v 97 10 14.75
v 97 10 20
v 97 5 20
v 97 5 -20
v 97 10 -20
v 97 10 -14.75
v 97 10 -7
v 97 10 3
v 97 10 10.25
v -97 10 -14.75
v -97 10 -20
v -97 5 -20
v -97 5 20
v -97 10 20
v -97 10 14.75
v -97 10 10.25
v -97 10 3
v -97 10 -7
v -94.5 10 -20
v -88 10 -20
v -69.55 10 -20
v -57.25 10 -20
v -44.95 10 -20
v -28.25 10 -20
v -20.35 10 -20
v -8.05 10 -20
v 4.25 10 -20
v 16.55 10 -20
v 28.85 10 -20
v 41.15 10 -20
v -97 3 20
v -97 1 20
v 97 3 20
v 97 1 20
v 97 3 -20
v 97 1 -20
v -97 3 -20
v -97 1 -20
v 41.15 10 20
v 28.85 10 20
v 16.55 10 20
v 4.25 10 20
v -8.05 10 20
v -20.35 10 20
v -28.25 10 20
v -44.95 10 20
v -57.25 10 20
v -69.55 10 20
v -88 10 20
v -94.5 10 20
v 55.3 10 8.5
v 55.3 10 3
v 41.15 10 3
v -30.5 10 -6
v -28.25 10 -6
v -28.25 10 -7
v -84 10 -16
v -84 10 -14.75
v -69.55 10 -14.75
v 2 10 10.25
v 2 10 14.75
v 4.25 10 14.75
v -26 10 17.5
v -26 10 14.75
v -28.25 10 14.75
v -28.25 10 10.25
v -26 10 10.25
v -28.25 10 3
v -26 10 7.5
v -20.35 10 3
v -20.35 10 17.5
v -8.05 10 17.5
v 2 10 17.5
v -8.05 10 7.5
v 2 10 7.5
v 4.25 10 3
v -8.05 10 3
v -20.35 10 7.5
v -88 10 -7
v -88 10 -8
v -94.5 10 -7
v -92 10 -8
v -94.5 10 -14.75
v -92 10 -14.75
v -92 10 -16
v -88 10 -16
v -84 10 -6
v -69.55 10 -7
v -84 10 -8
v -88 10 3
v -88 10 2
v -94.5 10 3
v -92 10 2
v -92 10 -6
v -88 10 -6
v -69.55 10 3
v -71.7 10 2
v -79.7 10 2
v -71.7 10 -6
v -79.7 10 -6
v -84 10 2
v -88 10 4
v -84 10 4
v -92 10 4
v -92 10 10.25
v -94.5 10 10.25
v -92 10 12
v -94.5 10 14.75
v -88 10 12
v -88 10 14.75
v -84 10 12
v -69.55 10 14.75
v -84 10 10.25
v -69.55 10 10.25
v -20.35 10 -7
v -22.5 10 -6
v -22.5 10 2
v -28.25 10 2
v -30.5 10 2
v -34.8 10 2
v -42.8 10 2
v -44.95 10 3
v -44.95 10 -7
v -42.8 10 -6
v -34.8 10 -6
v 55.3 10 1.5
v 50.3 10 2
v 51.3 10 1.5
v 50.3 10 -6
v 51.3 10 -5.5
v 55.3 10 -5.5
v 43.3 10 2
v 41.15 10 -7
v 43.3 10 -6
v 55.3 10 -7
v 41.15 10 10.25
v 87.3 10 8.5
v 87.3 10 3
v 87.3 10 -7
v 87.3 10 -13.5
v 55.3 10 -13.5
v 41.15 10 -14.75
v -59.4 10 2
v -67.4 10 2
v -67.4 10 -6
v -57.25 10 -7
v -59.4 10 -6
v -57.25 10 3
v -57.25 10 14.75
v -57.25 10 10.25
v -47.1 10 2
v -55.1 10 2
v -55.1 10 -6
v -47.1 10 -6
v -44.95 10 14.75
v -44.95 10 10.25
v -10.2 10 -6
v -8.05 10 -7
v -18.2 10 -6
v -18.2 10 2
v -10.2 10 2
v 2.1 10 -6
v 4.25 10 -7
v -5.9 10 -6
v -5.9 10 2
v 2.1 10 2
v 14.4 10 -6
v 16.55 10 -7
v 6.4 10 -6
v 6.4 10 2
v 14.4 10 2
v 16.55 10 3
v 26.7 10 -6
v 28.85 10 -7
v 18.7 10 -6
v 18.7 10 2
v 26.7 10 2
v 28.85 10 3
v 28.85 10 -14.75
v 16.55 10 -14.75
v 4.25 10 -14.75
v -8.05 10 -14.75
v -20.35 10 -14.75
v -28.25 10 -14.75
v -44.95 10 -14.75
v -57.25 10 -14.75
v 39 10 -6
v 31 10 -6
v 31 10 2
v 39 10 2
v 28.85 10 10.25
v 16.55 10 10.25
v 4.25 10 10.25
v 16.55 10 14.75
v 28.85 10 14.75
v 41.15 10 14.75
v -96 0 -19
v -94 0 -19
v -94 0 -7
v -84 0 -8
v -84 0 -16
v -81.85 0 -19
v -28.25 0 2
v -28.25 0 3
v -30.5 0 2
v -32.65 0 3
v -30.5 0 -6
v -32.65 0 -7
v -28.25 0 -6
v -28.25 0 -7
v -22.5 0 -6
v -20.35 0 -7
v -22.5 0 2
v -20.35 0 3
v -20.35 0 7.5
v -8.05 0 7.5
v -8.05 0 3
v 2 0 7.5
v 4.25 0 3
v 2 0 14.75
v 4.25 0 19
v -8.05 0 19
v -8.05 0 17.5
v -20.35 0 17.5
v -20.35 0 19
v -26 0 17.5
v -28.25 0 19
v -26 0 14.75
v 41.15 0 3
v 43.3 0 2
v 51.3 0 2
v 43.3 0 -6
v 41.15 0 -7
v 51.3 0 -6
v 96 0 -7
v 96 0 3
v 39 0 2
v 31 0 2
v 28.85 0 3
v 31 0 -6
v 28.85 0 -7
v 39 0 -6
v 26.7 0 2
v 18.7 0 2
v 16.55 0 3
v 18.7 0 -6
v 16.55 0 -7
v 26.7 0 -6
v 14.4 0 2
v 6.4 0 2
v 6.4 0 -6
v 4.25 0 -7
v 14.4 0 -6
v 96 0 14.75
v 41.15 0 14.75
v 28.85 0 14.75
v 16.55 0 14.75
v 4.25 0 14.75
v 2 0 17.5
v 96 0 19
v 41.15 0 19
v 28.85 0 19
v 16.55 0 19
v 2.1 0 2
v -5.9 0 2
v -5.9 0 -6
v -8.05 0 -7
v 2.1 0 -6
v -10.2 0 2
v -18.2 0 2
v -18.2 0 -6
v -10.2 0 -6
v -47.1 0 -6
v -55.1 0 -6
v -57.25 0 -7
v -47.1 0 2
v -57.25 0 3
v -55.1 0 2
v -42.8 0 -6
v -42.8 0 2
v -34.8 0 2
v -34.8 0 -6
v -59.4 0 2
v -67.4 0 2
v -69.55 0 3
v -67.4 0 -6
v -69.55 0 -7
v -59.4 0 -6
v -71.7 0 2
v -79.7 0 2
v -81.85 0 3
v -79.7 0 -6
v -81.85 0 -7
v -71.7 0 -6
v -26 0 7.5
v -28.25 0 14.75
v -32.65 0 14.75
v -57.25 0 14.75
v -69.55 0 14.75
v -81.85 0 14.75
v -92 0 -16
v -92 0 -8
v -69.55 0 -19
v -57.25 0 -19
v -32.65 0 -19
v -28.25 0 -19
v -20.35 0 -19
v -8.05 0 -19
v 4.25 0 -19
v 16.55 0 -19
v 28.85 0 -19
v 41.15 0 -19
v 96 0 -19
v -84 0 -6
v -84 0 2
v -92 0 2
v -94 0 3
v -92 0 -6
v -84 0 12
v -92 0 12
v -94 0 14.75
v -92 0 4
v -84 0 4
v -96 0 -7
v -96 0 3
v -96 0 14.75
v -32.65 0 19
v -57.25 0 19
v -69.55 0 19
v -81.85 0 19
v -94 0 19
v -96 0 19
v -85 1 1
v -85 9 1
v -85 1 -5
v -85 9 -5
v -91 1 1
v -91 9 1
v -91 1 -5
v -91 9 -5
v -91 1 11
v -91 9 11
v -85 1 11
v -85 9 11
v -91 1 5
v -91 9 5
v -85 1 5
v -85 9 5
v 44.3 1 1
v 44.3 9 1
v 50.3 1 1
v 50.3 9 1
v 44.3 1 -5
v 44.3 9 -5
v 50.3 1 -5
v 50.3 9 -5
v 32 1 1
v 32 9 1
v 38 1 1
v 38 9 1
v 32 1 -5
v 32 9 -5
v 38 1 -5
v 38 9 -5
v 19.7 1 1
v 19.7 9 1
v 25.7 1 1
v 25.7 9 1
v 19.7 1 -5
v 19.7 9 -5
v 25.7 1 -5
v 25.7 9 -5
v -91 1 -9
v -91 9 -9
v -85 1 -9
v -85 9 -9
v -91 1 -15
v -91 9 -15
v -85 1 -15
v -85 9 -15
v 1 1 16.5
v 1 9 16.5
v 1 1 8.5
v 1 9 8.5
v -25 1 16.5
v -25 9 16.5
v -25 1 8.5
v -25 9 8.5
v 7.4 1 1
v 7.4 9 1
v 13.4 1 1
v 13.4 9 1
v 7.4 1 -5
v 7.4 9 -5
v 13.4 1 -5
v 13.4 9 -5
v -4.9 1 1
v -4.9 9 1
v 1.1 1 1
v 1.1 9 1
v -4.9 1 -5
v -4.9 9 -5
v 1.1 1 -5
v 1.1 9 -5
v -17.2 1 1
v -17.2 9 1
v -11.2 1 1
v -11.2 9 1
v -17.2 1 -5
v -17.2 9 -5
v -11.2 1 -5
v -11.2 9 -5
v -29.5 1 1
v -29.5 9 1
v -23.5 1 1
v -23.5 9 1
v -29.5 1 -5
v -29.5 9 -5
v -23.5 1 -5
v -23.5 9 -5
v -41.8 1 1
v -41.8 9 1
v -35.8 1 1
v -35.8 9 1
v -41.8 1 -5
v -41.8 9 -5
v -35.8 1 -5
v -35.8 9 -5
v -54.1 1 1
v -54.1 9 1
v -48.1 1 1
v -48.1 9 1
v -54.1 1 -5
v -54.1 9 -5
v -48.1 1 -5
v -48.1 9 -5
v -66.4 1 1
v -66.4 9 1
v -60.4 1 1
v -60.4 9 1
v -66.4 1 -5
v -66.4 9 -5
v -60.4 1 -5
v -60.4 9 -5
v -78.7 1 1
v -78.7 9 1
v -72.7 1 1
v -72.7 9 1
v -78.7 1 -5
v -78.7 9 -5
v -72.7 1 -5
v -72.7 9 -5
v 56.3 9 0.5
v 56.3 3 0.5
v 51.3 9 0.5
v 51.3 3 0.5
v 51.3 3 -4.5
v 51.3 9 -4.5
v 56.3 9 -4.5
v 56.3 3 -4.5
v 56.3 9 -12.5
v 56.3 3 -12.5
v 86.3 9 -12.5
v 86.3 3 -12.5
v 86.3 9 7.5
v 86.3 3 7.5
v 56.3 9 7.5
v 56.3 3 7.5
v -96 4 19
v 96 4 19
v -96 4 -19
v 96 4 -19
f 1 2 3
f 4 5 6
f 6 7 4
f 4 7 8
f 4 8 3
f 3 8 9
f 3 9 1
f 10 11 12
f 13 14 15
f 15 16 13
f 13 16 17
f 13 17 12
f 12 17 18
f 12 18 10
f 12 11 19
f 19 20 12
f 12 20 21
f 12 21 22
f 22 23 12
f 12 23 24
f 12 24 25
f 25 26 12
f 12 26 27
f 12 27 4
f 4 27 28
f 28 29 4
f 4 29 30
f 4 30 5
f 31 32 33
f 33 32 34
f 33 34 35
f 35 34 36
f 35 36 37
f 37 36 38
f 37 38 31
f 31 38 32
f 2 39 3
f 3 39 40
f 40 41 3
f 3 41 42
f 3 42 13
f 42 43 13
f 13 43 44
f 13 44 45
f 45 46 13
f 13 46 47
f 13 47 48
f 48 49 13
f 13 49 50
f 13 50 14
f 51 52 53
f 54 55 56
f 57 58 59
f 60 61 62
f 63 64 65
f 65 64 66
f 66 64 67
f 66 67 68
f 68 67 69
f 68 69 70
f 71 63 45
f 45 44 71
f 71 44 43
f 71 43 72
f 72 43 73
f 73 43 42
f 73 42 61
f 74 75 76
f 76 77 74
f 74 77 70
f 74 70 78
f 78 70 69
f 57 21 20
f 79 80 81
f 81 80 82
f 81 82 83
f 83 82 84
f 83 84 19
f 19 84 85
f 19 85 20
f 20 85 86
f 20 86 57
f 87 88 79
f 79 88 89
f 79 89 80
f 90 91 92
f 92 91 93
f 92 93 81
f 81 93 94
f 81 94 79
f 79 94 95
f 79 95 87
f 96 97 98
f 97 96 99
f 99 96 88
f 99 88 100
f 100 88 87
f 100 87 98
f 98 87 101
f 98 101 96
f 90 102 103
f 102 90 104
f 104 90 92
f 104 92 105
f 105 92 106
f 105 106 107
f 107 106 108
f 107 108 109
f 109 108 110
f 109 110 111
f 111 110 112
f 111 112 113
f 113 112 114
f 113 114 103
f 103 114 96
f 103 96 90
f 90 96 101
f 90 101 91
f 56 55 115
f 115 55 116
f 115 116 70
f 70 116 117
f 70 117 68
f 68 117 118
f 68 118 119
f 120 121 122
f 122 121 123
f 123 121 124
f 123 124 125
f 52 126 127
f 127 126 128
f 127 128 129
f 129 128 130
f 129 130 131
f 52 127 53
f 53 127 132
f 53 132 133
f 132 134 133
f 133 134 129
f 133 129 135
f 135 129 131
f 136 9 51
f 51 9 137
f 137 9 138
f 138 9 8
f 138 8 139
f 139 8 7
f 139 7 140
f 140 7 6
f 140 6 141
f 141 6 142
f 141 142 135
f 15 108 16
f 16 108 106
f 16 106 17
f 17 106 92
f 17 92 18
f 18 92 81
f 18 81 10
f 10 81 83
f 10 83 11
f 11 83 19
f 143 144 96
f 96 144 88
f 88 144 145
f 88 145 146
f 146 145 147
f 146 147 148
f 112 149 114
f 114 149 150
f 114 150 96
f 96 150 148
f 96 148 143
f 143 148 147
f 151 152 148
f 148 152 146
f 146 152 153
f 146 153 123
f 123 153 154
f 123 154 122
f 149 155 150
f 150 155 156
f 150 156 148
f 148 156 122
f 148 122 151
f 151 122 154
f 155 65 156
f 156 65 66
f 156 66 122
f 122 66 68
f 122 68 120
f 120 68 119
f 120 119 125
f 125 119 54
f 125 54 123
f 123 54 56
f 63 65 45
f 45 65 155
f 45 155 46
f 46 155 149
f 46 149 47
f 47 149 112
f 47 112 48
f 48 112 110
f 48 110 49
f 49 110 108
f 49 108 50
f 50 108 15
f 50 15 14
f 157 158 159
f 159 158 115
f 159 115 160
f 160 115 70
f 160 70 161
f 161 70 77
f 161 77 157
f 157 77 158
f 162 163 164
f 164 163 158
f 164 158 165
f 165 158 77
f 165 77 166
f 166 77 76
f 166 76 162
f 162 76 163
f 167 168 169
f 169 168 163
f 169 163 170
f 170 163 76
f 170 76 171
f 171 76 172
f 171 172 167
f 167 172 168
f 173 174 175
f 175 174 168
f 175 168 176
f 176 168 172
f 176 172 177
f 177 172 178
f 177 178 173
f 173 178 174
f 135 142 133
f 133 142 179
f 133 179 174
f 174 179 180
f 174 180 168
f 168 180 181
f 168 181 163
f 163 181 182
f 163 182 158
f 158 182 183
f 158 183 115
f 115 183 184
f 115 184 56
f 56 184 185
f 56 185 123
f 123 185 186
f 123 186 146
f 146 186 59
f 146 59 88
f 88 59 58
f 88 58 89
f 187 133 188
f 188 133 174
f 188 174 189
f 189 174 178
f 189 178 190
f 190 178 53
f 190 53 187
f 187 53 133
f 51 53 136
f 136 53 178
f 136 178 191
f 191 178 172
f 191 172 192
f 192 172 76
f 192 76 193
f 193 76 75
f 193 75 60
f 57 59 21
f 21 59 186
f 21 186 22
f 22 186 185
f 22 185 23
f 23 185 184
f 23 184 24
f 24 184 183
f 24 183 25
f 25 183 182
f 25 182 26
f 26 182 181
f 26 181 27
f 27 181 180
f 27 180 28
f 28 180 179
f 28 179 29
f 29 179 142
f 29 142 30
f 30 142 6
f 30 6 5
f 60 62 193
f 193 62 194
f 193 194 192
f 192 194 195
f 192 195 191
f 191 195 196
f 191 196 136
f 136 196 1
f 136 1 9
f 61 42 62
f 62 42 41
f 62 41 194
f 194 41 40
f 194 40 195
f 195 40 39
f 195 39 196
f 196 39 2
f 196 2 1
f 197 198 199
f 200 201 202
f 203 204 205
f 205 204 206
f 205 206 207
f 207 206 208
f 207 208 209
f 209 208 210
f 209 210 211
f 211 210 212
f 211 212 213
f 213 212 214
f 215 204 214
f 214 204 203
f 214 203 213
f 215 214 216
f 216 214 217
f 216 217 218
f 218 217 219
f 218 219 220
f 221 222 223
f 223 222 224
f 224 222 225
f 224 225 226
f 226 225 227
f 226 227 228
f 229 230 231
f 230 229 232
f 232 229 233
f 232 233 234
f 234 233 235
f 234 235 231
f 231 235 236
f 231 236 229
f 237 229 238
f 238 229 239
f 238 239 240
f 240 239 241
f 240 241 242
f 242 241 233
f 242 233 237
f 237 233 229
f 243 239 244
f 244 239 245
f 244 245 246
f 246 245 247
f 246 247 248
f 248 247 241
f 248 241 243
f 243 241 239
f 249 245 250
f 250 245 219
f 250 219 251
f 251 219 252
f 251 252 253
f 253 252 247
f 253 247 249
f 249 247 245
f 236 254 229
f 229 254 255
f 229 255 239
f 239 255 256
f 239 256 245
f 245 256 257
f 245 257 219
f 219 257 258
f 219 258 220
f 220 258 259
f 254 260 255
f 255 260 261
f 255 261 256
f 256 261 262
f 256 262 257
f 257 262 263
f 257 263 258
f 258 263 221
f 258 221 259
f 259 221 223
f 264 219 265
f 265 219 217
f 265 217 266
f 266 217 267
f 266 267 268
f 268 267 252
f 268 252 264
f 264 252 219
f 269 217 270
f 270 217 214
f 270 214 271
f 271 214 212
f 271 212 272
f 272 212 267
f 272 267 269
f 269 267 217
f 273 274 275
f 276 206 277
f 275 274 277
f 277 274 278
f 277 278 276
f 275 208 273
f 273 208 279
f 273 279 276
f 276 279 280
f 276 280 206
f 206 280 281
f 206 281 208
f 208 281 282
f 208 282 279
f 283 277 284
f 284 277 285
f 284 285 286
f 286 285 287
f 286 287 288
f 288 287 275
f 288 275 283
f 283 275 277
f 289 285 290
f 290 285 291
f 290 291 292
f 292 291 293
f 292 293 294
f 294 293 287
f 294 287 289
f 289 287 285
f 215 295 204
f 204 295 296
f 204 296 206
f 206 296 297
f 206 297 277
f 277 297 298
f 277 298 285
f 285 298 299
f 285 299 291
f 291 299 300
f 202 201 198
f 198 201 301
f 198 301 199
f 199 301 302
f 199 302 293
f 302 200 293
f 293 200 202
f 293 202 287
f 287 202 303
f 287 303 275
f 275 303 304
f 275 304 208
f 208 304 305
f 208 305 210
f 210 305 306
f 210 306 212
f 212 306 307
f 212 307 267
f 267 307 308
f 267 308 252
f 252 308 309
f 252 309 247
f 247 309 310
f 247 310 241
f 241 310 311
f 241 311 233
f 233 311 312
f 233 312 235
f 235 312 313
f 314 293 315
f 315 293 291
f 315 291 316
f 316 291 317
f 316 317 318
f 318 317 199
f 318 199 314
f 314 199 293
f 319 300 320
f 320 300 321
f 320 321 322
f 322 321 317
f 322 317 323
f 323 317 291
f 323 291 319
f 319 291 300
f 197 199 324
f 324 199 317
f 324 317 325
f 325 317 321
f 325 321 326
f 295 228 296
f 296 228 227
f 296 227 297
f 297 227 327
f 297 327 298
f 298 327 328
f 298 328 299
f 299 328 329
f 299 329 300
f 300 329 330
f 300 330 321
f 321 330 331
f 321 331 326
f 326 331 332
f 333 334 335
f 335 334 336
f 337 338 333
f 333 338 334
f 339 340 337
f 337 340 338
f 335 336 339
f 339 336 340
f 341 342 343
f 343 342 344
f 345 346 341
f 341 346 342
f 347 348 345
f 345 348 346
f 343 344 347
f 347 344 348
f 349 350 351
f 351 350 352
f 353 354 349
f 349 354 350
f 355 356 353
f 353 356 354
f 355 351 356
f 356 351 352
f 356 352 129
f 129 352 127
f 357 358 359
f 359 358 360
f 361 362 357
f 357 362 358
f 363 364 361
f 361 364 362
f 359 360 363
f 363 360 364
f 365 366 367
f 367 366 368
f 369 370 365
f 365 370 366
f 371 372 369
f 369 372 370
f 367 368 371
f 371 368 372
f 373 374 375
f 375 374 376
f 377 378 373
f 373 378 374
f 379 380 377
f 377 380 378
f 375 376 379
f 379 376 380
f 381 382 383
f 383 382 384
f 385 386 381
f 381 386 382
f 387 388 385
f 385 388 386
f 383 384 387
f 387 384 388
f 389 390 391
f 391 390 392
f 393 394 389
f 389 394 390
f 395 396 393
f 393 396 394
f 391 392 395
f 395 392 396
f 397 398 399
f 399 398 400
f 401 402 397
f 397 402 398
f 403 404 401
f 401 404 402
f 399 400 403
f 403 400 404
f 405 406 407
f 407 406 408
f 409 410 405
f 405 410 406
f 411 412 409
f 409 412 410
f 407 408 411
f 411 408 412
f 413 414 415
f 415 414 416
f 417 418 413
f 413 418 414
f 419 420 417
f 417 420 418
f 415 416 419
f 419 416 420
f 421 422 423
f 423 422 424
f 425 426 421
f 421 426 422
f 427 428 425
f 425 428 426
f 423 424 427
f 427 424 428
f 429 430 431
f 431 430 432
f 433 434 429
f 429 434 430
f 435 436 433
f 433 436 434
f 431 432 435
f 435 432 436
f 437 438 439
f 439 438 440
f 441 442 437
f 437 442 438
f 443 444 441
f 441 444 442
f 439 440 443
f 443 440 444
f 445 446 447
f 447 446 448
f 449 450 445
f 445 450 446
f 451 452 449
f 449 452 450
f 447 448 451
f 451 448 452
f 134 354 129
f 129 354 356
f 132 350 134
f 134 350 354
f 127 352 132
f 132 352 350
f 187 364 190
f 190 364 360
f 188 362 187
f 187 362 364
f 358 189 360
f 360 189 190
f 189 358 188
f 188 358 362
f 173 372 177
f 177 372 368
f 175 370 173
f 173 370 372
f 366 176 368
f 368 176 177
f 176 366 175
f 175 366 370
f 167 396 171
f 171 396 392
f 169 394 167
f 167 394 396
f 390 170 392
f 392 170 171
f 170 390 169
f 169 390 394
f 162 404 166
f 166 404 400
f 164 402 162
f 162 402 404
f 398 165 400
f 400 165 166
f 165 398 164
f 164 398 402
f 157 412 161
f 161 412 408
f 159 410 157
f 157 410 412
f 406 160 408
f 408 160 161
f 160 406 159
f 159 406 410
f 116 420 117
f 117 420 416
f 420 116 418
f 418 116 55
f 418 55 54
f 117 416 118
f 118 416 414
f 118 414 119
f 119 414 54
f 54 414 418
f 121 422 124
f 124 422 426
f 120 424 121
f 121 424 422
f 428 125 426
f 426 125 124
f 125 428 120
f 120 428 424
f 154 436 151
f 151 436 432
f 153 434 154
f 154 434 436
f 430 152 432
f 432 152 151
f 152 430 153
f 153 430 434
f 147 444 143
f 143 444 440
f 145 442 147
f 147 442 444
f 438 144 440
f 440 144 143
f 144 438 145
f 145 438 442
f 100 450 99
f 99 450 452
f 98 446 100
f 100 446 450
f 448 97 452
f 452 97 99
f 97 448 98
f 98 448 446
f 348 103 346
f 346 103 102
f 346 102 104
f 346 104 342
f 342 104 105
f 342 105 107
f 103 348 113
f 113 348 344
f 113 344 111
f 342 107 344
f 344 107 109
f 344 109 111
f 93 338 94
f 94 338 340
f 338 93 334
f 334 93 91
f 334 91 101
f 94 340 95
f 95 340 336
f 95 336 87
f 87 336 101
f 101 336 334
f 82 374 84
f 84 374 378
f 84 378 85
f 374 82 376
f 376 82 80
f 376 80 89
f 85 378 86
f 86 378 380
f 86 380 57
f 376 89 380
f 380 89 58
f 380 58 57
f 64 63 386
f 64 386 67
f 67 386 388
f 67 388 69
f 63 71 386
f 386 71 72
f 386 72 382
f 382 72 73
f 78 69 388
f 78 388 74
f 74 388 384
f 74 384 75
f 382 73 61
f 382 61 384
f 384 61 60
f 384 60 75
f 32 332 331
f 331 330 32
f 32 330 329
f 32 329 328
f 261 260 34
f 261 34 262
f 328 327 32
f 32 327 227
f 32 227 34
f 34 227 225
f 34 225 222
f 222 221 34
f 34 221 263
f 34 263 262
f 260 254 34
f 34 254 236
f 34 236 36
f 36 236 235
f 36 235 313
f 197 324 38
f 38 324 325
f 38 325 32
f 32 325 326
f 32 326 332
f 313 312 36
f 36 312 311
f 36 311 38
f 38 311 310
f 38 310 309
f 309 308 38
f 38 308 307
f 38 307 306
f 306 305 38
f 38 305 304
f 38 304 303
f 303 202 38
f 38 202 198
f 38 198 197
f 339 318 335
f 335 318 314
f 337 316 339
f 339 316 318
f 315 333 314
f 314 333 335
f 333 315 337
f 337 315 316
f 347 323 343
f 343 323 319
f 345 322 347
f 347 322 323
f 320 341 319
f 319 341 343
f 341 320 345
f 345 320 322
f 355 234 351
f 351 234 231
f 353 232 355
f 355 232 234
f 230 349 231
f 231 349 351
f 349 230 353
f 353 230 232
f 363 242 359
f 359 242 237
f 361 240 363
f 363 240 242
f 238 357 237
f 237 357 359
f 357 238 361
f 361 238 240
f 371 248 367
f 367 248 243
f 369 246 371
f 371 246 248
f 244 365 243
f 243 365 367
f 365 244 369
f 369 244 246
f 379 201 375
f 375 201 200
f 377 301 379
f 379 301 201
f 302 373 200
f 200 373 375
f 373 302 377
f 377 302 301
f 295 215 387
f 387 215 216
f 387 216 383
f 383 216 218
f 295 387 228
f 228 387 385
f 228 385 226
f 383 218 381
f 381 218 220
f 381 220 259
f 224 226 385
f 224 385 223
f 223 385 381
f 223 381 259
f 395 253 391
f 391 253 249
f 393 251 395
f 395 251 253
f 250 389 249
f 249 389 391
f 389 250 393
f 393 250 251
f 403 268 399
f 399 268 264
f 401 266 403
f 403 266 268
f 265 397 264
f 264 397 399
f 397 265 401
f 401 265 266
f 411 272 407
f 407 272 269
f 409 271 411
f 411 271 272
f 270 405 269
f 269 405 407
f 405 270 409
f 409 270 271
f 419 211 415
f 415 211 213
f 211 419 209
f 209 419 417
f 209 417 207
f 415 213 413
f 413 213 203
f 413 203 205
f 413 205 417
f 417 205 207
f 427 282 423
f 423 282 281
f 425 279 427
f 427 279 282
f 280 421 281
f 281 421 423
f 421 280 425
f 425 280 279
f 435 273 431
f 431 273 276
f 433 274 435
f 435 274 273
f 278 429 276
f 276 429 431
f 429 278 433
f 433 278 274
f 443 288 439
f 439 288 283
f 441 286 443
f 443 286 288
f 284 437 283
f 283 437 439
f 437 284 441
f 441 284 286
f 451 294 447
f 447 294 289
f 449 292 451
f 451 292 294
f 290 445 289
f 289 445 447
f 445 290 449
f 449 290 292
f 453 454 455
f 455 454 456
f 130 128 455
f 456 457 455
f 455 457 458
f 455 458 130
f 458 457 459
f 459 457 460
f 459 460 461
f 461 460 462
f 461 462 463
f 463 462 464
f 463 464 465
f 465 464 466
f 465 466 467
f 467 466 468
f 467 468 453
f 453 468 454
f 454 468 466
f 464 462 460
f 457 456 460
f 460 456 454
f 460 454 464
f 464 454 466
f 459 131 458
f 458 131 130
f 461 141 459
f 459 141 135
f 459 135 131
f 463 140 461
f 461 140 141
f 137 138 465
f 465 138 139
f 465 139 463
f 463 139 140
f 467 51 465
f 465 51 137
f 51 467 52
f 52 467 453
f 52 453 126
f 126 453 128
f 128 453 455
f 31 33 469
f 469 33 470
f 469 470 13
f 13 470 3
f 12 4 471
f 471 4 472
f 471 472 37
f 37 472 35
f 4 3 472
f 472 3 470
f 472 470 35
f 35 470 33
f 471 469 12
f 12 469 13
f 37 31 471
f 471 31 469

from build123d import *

# Parameters (mm, degrees)
SKETCH1_W           = 194
SKETCH1_H           = 40
BOSS_EXTRUDE1_DEPTH = 10
SKETCH3_W           = 6
SKETCH3_H           = 6
SKETCH3_W_2         = 26
SKETCH3_H_2         = 8
CUT_EXTRUDE1_DEPTH  = 11
CHAMFER1_SIZE       = 1
CHAMFER2_SIZE       = 1
SKETCH4_W           = 5
SKETCH4_H           = 5
CUT_EXTRUDE2_DEPTH  = 7
CHAMFER3_SIZE       = 1
CUT_EXTRUDE4_DEPTH  = 195
CUT_EXTRUDE5_DEPTH  = 41


with BuildPart() as part:
    # Sketch1 → Boss-Extrude1 (new body)
    with BuildSketch(Plane(origin=(0, 0, 0), x_dir=(1, 0, 0), z_dir=(0, 1, 0))):
        Rectangle(SKETCH1_W, SKETCH1_H)
    extrude(amount=BOSS_EXTRUDE1_DEPTH)

    # Sketch3 → Cut-Extrude1 (cut, through all)
    with BuildSketch(Plane(origin=(0, 10, 0), x_dir=(1, 0, 0), z_dir=(0, 1, 0))):
        with Locations((-88, 2)):
            Rectangle(SKETCH3_W, SKETCH3_H)
        with Locations((-75.7, 2)):
            Rectangle(SKETCH3_W, SKETCH3_H)
        with Locations((-63.4, 2)):
            Rectangle(SKETCH3_W, SKETCH3_H)
        with Locations((-51.1, 2)):
            Rectangle(SKETCH3_W, SKETCH3_H)
        with Locations((-38.8, 2)):
            Rectangle(SKETCH3_W, SKETCH3_H)
        with Locations((-26.5, 2)):
            Rectangle(SKETCH3_W, SKETCH3_H)
        with Locations((-14.2, 2)):
            Rectangle(SKETCH3_W, SKETCH3_H)
        with Locations((-1.9, 2)):
            Rectangle(SKETCH3_W, SKETCH3_H)
        with Locations((10.4, 2)):
            Rectangle(SKETCH3_W, SKETCH3_H)
        with Locations((22.7, 2)):
            Rectangle(SKETCH3_W, SKETCH3_H)
        with Locations((35, 2)):
            Rectangle(SKETCH3_W, SKETCH3_H)
        with Locations((47.3, 2)):
            Rectangle(SKETCH3_W, SKETCH3_H)
        with Locations((-88, 12)):
            Rectangle(SKETCH3_W, SKETCH3_H)
        with Locations((-88, -8)):
            Rectangle(SKETCH3_W, SKETCH3_H)
        with Locations((-12, -12.5)):
            Rectangle(SKETCH3_W_2, SKETCH3_H_2)
    extrude(amount=-CUT_EXTRUDE1_DEPTH, mode=Mode.SUBTRACT)

    # Chamfer1
    chamfer1_edges = [part.edges().sort_by_distance(p)[0] for p in [
        (-26.5, 10, -5),
        (-29.5, 10, -2),
        (-14.2, 10, 1),
        (-11.2, 10, -2),
        (-14.2, 10, -5),
        (-17.2, 10, -2),
        (-1.9, 10, 1),
        (1.1, 10, -2),
        (-1.9, 10, -5),
        (-4.9, 10, -2),
        (10.4, 10, 1),
        (13.4, 10, -2),
        (10.4, 10, -5),
        (7.4, 10, -2),
        (1, 10, 12.5),
        (-12, 10, 8.5),
        (-25, 10, 12.5),
        (-12, 10, 16.5),
        (-88, 10, -9),
        (-85, 10, -12),
        (-88, 10, -15),
        (-91, 10, -12),
        (22.7, 10, 1),
        (25.7, 10, -2),
        (22.7, 10, -5),
        (19.7, 10, -2),
        (35, 10, 1),
        (38, 10, -2),
        (35, 10, -5),
        (32, 10, -2),
        (47.3, 10, 1),
        (47.3, 10, -5),
        (44.3, 10, -2),
        (-88, 10, 11),
        (-85, 10, 8),
        (-88, 10, 5),
        (-91, 10, 8),
        (-85, 10, -2),
        (-88, 10, -5),
        (-91, 10, -2),
        (-88, 10, 1),
        (-75.7, 10, 1),
        (-72.7, 10, -2),
        (-75.7, 10, -5),
        (-78.7, 10, -2),
        (-63.4, 10, 1),
        (-60.4, 10, -2),
        (-63.4, 10, -5),
        (-66.4, 10, -2),
        (-51.1, 10, 1),
        (-48.1, 10, -2),
        (-51.1, 10, -5),
        (-54.1, 10, -2),
        (-38.8, 10, 1),
        (-35.8, 10, -2),
        (-38.8, 10, -5),
        (-41.8, 10, -2),
        (-26.5, 10, 1),
        (-23.5, 10, -2),
    ]]
    chamfer(chamfer1_edges, length=CHAMFER1_SIZE)

    # Chamfer2
    chamfer2_edges = [part.edges().sort_by_distance(p)[0] for p in [
        (-14.2, 0, 1),
        (-17.2, 0, -2),
        (-14.2, 0, -5),
        (-11.2, 0, -2),
        (-1.9, 0, 1),
        (-4.9, 0, -2),
        (-1.9, 0, -5),
        (1.1, 0, -2),
        (10.4, 0, 1),
        (7.4, 0, -2),
        (10.4, 0, -5),
        (13.4, 0, -2),
        (1, 0, 12.5),
        (-12, 0, 16.5),
        (-25, 0, 12.5),
        (-12, 0, 8.5),
        (-88, 0, -9),
        (-91, 0, -12),
        (-88, 0, -15),
        (-85, 0, -12),
        (22.7, 0, 1),
        (19.7, 0, -2),
        (22.7, 0, -5),
        (25.7, 0, -2),
        (35, 0, 1),
        (32, 0, -2),
        (35, 0, -5),
        (38, 0, -2),
        (47.3, 0, 1),
        (44.3, 0, -2),
        (47.3, 0, -5),
        (50.3, 0, -2),
        (-88, 0, 11),
        (-91, 0, 8),
        (-88, 0, 5),
        (-85, 0, 8),
        (-85, 0, -2),
        (-88, 0, 1),
        (-91, 0, -2),
        (-88, 0, -5),
        (0, 0, 20),
        (-97, 0, 0),
        (0, 0, -20),
        (97, 0, 0),
        (-75.7, 0, 1),
        (-78.7, 0, -2),
        (-75.7, 0, -5),
        (-72.7, 0, -2),
        (-63.4, 0, 1),
        (-66.4, 0, -2),
        (-63.4, 0, -5),
        (-60.4, 0, -2),
        (-51.1, 0, 1),
        (-54.1, 0, -2),
        (-51.1, 0, -5),
        (-48.1, 0, -2),
        (-38.8, 0, 1),
        (-41.8, 0, -2),
        (-38.8, 0, -5),
        (-35.8, 0, -2),
        (-26.5, 0, 1),
        (-29.5, 0, -2),
        (-26.5, 0, -5),
        (-23.5, 0, -2),
    ]]
    chamfer(chamfer2_edges, length=CHAMFER2_SIZE)

    # Sketch4 → Cut-Extrude2 (cut)
    with BuildSketch(Plane(origin=(0, 10, 0), x_dir=(1, 0, 0), z_dir=(0, 1, 0))):
        with Locations((53.8, 2)):
            Rectangle(SKETCH4_W, SKETCH4_H)
        Polygon((56.3, 12.5), (56.3, 4.5), (56.3, -0.5), (56.3, -7.5), (86.3, -7.5), (86.3, 12.5), align=None)
    extrude(amount=-CUT_EXTRUDE2_DEPTH, mode=Mode.SUBTRACT)

    # Chamfer3
    chamfer3_edges = [part.edges().sort_by_distance(p)[0] for p in [
        (53.8, 10, -4.5),
        (71.3, 10, -12.5),
        (86.3, 10, -2.5),
        (53.8, 10, 0.5),
        (56.3, 10, 4),
        (71.3, 10, 7.5),
        (56.3, 10, -8.5),
    ]]
    chamfer(chamfer3_edges, length=CHAMFER3_SIZE)

    # Sketch6 → Cut-Extrude4 (cut, through all)
    with BuildSketch(Plane.ZY.offset(97)):
        Polygon((-20, 5), (-20, 3), (-19, 4), align=None)
        Polygon((19, 4), (20, 5), (20, 3), align=None)
    extrude(amount=-CUT_EXTRUDE4_DEPTH, mode=Mode.SUBTRACT)

    # Sketch7 → Cut-Extrude5 (cut, through all)
    with BuildSketch(Plane.XY.offset(20)):
        Polygon((-97, 5), (-96, 4), (-97, 3), align=None)
        Polygon((96, 4), (97, 3), (97, 5), align=None)
    extrude(amount=-CUT_EXTRUDE5_DEPTH, mode=Mode.SUBTRACT)


solid = part.part
